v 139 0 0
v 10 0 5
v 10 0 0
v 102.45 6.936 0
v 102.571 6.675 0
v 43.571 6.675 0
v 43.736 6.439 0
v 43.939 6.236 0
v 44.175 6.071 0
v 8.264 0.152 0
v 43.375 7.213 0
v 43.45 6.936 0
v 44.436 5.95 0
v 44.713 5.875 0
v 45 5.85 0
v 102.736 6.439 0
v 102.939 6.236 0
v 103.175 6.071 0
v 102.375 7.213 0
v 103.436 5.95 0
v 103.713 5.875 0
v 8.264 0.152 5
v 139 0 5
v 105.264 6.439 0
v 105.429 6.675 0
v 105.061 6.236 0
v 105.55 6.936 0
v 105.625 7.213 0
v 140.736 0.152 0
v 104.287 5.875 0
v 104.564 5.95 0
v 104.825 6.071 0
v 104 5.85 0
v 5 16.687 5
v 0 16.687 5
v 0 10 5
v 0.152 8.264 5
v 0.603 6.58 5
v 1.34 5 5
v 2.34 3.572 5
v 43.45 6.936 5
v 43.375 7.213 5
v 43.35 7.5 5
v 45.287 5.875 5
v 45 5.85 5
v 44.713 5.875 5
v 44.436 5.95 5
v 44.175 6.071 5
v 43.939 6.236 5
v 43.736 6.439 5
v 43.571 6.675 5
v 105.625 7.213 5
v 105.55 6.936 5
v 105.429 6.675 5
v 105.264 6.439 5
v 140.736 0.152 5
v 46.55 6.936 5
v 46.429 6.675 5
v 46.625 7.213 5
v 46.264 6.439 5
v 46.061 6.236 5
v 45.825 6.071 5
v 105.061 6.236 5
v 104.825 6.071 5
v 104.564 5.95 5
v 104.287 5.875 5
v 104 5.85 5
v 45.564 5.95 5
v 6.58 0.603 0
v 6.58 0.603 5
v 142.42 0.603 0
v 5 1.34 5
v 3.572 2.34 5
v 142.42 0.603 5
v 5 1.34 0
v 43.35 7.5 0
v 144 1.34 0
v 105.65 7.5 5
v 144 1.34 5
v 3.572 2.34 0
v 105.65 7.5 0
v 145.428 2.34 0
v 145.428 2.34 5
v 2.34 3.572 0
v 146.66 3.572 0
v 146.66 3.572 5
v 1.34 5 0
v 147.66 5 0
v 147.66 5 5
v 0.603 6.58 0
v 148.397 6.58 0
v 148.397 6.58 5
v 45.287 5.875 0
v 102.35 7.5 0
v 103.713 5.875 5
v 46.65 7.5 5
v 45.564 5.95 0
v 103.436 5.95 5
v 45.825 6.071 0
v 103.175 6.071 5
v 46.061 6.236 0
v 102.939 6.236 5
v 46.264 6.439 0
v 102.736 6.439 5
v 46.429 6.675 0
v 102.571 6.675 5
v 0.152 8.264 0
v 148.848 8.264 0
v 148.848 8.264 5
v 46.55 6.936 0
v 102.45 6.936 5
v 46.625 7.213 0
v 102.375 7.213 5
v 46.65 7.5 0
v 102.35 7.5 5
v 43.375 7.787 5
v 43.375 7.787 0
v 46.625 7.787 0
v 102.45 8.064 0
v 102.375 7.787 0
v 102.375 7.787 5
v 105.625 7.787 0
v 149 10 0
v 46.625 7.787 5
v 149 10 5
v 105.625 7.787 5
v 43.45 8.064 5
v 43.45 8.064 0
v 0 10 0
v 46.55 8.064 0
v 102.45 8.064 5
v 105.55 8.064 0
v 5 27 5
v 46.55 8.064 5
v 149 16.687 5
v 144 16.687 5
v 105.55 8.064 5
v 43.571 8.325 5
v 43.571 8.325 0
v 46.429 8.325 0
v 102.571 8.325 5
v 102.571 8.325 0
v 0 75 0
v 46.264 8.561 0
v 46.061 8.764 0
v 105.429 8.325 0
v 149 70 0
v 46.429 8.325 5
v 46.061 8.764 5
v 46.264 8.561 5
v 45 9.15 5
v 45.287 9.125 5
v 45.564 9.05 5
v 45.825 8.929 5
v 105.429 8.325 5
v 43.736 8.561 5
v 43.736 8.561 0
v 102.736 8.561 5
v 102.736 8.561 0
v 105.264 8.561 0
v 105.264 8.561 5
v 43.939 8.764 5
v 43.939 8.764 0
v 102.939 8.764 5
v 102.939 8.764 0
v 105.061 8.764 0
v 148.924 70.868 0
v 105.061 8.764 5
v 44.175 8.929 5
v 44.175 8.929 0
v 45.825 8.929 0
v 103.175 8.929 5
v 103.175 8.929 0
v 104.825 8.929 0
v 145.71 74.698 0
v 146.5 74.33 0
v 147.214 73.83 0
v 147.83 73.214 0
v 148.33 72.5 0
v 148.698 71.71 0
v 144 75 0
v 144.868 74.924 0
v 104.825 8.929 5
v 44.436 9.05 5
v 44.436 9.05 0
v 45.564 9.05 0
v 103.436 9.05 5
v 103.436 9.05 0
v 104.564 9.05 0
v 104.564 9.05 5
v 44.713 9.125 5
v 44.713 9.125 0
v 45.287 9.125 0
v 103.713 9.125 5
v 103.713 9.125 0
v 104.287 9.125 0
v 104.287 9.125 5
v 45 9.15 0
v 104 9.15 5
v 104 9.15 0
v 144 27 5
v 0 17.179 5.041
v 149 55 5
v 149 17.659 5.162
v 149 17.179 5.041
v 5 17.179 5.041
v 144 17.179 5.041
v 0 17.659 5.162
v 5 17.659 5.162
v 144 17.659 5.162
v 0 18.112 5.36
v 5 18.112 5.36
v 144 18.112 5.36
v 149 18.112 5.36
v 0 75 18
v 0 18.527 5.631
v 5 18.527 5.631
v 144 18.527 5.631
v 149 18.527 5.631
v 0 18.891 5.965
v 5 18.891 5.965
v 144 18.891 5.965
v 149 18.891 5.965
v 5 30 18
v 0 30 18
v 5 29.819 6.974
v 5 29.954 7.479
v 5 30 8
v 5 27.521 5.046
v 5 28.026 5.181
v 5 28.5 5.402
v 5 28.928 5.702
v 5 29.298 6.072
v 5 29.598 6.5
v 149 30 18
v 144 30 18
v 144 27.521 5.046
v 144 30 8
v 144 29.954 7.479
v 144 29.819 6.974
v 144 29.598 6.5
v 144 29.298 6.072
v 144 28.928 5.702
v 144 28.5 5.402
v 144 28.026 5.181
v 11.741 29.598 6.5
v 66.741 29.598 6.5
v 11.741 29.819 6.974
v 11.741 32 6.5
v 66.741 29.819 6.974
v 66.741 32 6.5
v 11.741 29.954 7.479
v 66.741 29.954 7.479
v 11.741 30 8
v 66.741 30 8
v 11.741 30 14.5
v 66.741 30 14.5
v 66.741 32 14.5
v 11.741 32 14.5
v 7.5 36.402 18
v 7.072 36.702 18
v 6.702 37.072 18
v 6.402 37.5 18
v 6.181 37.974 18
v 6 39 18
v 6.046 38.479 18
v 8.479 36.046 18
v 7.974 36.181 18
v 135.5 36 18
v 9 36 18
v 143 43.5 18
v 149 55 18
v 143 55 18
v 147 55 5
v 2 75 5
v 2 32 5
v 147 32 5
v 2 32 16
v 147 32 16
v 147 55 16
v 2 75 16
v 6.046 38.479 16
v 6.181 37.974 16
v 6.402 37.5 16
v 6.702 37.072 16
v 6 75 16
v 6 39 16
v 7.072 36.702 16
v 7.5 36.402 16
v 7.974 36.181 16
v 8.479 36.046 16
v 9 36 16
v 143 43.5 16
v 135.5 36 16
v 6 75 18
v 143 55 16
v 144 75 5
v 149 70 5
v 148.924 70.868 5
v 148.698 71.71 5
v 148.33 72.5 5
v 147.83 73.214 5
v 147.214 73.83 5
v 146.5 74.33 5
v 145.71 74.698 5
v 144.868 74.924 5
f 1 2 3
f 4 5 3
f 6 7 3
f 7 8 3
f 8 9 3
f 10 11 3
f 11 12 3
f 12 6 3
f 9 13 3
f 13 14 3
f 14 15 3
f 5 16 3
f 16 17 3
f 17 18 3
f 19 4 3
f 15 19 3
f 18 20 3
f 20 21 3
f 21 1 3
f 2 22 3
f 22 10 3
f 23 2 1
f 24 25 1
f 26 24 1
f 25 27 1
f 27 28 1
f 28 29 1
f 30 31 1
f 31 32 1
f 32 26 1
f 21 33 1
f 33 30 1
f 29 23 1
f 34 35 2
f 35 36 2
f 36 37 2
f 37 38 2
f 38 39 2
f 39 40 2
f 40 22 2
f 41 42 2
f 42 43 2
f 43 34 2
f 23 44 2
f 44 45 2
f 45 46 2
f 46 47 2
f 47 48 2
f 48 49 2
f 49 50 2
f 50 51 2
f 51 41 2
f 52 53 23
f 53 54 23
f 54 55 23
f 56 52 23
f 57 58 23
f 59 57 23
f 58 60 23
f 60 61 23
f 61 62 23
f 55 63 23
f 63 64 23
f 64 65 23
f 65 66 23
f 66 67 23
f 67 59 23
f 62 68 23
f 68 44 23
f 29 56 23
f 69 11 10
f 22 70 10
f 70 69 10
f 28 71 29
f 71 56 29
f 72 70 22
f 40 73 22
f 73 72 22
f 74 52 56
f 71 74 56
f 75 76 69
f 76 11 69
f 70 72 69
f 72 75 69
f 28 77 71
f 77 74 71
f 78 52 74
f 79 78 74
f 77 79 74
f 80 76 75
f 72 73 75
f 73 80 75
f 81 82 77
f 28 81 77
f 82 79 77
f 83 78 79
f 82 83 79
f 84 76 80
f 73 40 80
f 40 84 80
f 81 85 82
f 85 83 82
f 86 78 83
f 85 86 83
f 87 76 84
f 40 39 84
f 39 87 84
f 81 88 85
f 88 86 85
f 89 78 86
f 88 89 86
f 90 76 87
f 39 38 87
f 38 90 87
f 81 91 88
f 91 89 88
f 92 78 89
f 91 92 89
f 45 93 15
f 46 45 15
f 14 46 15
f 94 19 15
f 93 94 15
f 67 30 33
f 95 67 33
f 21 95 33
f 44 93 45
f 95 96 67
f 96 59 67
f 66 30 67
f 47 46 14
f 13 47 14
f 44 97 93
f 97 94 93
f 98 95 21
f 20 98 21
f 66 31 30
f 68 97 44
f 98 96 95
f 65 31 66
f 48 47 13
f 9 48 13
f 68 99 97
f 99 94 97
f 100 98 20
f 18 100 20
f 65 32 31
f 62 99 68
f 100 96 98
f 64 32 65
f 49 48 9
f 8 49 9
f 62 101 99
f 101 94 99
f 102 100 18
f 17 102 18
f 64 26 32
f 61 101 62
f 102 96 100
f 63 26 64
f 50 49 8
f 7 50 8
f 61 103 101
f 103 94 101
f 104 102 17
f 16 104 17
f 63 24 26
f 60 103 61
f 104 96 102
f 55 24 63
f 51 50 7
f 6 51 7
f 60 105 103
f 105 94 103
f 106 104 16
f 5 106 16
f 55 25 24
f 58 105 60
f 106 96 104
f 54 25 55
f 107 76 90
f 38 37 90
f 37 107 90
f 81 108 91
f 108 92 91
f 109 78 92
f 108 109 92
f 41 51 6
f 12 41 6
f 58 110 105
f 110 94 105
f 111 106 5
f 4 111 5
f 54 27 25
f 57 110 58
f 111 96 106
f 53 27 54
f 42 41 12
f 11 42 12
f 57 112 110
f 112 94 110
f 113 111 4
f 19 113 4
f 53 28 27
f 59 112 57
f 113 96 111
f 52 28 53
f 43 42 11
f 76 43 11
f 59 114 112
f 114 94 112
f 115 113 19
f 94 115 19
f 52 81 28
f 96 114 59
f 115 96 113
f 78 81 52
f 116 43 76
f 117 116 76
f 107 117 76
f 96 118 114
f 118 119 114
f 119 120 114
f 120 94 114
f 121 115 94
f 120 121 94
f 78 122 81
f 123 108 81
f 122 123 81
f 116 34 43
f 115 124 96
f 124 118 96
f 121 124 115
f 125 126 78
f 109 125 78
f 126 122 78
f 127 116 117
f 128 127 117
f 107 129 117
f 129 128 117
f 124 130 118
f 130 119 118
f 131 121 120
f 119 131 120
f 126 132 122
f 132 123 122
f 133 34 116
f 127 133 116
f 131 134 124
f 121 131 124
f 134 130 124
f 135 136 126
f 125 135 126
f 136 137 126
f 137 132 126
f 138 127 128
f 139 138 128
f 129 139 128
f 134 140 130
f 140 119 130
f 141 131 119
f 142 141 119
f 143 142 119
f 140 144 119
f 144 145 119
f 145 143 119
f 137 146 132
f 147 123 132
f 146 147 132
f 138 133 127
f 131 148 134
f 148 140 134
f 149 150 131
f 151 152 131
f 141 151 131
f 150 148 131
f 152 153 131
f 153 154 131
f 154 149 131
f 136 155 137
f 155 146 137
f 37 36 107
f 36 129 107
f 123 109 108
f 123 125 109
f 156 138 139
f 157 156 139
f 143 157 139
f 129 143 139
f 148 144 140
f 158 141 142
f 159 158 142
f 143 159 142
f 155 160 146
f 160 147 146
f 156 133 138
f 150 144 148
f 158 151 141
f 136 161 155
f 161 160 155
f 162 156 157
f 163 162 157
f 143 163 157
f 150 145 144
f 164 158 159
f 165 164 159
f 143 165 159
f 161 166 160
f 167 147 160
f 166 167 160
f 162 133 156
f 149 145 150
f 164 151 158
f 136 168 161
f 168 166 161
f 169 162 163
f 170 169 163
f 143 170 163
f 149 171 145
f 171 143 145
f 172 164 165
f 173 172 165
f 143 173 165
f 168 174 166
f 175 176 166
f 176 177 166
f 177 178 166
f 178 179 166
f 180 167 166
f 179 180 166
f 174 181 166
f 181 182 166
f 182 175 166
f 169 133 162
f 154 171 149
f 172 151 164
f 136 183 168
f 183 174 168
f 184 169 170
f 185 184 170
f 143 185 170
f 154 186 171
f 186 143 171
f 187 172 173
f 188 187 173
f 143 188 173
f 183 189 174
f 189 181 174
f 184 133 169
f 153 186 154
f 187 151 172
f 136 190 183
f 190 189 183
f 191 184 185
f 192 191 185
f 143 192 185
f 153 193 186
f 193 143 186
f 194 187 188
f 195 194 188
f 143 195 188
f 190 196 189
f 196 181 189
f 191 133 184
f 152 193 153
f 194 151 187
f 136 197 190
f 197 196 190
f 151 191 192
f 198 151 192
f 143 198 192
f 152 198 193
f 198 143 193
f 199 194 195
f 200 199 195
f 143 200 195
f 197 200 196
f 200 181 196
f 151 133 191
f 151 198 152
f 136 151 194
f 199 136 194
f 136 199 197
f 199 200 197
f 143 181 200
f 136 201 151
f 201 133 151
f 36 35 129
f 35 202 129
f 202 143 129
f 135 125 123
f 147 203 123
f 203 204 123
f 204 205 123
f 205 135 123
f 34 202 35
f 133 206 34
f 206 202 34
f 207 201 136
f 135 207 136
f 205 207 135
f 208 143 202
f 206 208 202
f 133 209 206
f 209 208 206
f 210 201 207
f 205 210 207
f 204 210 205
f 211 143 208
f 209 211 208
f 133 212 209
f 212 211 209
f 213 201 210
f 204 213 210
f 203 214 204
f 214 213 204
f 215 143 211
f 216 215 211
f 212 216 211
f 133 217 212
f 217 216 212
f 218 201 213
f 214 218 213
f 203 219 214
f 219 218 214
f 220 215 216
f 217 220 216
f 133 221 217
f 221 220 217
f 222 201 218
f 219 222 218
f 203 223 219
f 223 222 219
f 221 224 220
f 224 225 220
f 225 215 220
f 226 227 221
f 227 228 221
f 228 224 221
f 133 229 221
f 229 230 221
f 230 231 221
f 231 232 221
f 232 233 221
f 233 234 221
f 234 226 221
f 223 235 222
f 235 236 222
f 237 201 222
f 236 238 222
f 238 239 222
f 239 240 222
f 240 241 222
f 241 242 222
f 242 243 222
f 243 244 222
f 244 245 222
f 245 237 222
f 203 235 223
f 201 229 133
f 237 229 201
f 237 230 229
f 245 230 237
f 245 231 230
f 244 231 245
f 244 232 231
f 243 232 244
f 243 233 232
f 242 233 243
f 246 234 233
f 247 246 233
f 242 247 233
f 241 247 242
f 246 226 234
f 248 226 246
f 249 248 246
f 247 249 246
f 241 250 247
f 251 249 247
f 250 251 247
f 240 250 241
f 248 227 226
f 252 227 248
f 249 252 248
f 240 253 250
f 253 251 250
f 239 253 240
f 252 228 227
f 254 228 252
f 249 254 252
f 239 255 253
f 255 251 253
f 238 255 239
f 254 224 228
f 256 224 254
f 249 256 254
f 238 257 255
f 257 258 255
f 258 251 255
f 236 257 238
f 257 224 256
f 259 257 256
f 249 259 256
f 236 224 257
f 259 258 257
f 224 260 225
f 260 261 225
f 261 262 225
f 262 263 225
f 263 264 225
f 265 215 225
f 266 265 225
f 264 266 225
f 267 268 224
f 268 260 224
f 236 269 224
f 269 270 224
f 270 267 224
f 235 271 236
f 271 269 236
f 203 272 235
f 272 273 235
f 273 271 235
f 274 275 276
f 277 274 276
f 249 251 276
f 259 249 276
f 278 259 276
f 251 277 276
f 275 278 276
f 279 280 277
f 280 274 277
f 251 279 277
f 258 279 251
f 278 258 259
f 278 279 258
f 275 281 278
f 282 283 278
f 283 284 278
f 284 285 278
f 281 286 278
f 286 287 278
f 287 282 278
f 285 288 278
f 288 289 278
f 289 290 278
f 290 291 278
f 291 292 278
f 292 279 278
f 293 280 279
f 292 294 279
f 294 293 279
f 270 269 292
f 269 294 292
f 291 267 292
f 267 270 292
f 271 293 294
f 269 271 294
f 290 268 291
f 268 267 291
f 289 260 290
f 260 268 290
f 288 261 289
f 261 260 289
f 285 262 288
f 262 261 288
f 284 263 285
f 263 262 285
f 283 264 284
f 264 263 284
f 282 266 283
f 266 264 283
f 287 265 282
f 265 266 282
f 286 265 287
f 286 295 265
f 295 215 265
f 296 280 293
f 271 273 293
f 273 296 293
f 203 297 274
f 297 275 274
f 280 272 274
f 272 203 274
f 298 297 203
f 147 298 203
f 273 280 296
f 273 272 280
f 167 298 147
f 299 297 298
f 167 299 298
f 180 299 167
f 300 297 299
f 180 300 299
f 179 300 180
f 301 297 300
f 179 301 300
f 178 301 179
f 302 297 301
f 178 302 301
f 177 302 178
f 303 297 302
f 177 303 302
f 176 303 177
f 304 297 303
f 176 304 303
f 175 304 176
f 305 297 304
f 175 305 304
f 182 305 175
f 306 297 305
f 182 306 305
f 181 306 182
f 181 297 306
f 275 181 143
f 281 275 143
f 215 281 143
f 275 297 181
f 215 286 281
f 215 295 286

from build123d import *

# Parameters (mm, degrees)
SKETCH1_W           = 149
SKETCH1_H           = 75
SKETCH1_R           = 1.65
BOSS_EXTRUDE1_DEPTH = 5
FILLET1_R           = 10
BOSS_EXTRUDE2_DEPTH = 11
BOSS_EXTRUDE3_DEPTH = 2
CHAMFER1_SIZE       = 7.5
BOSS_EXTRUDE4_DEPTH = 5
FILLET2_R           = 3
SKETCH5_W           = 55
SKETCH5_H           = 8
CUT_EXTRUDE1_DEPTH  = 10
FILLET3_R           = 3
FILLET4_R           = 5


with BuildPart() as part:
    # Sketch1 → Boss-Extrude1 (new body)
    with BuildSketch(Plane.XY):
        with Locations((74.5, 37.5)):
            Rectangle(SKETCH1_W, SKETCH1_H)
        with Locations((45, 7.5)):
            Circle(SKETCH1_R, mode=Mode.SUBTRACT)
        with Locations((104, 7.5)):
            Circle(SKETCH1_R, mode=Mode.SUBTRACT)
    extrude(amount=BOSS_EXTRUDE1_DEPTH)

    # Fillet1
    fillet1_edges = [part.edges().sort_by_distance(p)[0] for p in [
        (149, 0, 2.5),
        (0, 0, 2.5),
    ]]
    fillet(fillet1_edges, radius=FILLET1_R)

    # Sketch2 → Boss-Extrude2 (add)
    with BuildSketch(Plane.XY.offset(5)):
        Polygon((0, 75), (2, 75), (2, 73), (2, 32), (147, 32), (147, 55), (149, 55), (149, 30), (0, 30), align=None)
    extrude(amount=BOSS_EXTRUDE2_DEPTH)

    # Sketch3 → Boss-Extrude3 (add)
    with BuildSketch(Plane.XY.offset(16)):
        Polygon((149, 30), (149, 55), (143, 55), (143, 36), (6, 36), (6, 75), (0, 75), (0, 30), align=None)
    extrude(amount=BOSS_EXTRUDE3_DEPTH)

    # Chamfer1
    chamfer1_edges = [part.edges().sort_by_distance(p)[0] for p in [
        (143, 36, 17),
    ]]
    chamfer(chamfer1_edges, length=CHAMFER1_SIZE)

    # Sketch4 → Boss-Extrude4 (add)
    with BuildSketch(Plane.ZY):
        Polygon((18, 30), (5, 18), (5, 30), align=None)
    boss_extrude4 = extrude(amount=-BOSS_EXTRUDE4_DEPTH)

    # Mirror1: Boss-Extrude4 across plane
    add(boss_extrude4.mirror(Plane.ZY.offset(-74.5)))

    # Fillet2
    fillet2_edges = [part.edges().sort_by_distance(p)[0] for p in [
        (146.5, 18, 5),
        (74.5, 30, 5),
        (2.5, 18, 5),
    ]]
    fillet(fillet2_edges, radius=FILLET2_R)

    # Sketch5 → Cut-Extrude1 (cut)
    with BuildSketch(Plane(origin=(0, 32, 0), x_dir=(1, 0, 0), z_dir=(0, 1, 0))):
        with Locations((39.241088115, -10.5)):
            Rectangle(SKETCH5_W, SKETCH5_H)
    extrude(amount=-CUT_EXTRUDE1_DEPTH, mode=Mode.SUBTRACT)

    # Fillet3
    fillet3_edges = [part.edges().sort_by_distance(p)[0] for p in [
        (6, 36, 17),
    ]]
    fillet(fillet3_edges, radius=FILLET3_R)

    # Fillet4
    fillet4_edges = [part.edges().sort_by_distance(p)[0] for p in [
        (149, 75, 2.5),
    ]]
    fillet(fillet4_edges, radius=FILLET4_R)


solid = part.part
